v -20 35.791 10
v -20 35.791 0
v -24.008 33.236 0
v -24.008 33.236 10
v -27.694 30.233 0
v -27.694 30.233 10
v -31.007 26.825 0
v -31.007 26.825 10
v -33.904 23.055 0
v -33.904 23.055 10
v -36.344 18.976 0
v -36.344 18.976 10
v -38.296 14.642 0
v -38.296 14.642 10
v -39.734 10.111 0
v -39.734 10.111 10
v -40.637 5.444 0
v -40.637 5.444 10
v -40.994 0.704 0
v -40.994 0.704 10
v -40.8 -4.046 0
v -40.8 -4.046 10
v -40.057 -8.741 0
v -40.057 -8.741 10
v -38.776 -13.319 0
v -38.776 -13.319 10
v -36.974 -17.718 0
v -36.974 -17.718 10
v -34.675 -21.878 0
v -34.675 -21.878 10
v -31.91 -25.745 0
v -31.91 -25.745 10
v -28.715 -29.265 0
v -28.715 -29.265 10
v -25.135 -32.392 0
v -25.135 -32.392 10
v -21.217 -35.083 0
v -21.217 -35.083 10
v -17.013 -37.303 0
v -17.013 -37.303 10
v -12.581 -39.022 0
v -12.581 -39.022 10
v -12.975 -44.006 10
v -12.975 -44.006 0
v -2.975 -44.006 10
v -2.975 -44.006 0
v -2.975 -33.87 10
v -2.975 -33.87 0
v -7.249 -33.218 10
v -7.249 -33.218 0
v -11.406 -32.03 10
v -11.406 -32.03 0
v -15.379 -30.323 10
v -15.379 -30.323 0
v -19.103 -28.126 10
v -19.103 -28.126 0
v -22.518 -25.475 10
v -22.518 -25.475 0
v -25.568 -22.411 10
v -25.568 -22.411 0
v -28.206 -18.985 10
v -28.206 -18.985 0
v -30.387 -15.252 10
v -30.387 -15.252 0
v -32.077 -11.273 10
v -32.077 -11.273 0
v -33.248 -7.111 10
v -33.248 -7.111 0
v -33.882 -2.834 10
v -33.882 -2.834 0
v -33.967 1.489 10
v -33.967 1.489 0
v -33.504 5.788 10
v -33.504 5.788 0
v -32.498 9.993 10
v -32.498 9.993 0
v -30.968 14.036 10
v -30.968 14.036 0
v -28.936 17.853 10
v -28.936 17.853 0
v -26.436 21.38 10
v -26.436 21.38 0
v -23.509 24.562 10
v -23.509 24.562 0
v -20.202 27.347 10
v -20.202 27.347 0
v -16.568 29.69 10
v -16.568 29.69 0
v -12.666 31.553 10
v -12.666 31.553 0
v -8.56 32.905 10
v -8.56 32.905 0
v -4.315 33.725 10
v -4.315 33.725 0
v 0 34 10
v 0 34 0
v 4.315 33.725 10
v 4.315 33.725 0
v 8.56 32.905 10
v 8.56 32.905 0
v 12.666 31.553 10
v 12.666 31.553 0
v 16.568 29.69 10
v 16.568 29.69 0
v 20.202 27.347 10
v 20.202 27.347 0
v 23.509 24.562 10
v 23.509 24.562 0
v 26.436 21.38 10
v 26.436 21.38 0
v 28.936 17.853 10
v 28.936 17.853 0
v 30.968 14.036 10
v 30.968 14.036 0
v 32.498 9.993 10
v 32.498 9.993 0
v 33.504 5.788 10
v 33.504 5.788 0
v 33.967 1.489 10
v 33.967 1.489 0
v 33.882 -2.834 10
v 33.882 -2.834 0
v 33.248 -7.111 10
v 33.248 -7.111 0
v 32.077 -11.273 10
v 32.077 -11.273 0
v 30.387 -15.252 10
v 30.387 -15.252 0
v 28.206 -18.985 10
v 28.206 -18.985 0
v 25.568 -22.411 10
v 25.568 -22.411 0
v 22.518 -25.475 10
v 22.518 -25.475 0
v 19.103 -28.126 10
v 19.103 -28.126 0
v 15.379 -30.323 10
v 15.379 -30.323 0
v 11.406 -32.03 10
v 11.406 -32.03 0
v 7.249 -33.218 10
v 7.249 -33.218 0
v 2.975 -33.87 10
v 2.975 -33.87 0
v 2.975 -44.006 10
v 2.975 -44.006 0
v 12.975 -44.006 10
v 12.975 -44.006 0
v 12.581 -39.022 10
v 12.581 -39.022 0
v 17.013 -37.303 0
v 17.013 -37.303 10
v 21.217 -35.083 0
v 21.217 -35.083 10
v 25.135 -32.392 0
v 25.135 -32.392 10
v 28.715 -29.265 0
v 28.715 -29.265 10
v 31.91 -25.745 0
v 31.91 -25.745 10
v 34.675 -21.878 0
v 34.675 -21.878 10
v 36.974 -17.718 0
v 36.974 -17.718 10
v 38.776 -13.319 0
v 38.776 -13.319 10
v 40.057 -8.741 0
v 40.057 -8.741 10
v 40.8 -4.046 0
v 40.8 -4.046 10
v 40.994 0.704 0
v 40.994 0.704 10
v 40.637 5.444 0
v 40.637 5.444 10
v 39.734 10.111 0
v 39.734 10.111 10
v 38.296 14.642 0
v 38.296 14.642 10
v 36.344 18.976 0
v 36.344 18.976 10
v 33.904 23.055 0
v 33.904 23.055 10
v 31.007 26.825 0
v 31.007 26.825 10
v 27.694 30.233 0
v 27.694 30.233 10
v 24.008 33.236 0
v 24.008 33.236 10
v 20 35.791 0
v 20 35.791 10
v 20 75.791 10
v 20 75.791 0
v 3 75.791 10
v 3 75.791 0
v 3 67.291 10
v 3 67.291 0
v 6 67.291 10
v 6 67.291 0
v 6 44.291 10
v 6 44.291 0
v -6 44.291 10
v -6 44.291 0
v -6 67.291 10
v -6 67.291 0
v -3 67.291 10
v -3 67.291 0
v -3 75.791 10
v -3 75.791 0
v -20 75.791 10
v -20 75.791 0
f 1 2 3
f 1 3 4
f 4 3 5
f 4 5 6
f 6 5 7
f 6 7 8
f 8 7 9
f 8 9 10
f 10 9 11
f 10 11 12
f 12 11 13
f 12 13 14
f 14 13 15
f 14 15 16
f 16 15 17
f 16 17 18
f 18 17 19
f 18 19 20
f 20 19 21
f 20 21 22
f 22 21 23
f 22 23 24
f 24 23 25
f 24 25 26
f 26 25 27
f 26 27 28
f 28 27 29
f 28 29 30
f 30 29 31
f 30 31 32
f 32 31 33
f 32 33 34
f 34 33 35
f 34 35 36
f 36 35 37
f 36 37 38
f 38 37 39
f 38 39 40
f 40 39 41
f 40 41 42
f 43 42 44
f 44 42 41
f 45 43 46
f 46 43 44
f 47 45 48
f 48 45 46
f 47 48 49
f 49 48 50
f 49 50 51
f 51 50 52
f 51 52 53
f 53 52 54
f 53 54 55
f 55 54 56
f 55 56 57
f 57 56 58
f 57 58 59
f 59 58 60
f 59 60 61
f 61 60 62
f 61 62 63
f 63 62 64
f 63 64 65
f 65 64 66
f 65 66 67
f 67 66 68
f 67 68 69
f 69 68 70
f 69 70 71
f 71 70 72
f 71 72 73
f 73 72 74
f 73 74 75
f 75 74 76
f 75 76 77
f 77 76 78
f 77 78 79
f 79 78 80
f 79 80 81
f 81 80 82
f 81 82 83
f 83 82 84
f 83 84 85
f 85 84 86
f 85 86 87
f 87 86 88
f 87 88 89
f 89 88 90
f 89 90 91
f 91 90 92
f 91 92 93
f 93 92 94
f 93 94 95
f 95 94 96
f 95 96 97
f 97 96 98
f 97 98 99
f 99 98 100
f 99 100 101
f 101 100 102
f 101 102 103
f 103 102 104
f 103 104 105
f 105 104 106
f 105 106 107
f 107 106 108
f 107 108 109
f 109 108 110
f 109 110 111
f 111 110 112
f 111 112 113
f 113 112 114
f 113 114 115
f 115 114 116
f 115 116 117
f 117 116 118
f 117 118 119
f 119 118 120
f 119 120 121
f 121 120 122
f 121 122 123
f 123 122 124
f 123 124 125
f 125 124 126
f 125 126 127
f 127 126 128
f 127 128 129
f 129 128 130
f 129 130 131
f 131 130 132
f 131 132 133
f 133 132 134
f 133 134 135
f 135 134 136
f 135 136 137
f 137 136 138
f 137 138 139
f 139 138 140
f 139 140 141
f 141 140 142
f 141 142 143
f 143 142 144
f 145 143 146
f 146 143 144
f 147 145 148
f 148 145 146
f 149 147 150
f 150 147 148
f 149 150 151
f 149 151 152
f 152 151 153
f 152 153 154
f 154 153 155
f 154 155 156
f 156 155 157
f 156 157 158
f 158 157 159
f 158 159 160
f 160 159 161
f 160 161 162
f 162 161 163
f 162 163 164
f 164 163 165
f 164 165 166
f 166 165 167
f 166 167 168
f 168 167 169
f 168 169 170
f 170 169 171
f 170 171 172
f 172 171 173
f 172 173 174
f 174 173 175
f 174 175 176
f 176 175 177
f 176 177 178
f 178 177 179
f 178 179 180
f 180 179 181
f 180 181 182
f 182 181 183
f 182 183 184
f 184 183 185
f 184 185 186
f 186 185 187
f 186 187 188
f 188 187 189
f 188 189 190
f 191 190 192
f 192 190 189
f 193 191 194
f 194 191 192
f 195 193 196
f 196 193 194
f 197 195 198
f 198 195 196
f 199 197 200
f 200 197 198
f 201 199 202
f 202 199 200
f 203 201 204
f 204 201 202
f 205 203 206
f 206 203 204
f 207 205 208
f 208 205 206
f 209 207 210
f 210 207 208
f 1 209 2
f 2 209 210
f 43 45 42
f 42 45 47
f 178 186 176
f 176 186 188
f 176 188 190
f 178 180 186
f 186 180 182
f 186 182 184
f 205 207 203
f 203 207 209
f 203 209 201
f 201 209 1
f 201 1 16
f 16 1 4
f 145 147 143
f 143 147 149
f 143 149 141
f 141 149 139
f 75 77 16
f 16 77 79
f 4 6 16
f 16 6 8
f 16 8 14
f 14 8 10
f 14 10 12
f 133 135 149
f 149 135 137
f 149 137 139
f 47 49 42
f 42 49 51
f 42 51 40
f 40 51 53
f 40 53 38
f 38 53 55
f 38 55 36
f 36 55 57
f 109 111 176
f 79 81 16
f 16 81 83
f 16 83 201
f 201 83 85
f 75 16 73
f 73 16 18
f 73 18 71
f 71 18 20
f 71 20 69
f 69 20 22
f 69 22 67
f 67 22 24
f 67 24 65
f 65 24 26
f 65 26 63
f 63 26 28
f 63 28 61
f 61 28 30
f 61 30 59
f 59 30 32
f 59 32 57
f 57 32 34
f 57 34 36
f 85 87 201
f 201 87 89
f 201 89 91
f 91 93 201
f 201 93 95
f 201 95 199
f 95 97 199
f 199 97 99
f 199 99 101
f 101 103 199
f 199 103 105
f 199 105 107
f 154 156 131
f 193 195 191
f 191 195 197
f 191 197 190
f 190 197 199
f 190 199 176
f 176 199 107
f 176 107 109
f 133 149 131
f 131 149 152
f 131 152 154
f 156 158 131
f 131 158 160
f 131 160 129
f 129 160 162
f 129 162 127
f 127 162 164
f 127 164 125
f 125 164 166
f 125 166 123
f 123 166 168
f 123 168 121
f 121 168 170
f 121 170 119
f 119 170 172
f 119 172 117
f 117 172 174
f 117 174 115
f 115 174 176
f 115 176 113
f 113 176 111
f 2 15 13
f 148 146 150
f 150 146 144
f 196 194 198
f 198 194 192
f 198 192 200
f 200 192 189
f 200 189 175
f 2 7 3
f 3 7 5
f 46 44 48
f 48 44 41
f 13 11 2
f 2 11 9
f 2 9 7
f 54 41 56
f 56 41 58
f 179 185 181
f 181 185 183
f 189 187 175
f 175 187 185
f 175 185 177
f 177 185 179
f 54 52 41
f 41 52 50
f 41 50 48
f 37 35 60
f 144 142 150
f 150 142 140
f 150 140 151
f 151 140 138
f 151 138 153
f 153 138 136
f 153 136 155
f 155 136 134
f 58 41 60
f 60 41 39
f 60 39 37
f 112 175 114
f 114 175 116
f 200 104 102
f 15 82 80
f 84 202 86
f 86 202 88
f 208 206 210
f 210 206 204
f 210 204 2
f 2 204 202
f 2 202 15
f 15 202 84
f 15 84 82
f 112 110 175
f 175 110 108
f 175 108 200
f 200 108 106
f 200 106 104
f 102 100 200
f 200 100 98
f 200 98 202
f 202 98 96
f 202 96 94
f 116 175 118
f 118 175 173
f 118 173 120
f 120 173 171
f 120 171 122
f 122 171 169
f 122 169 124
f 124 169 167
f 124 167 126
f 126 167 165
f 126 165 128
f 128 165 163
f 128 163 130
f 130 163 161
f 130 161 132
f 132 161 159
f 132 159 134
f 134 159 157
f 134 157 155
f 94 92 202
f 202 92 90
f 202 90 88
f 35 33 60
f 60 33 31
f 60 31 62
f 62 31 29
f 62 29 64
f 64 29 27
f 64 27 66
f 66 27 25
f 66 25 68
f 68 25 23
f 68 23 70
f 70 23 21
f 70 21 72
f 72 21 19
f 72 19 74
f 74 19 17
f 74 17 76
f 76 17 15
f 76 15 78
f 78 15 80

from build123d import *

# Parameters (mm, degrees)
SALIENTE_EXTRUIR1_DEPTH = 10


with BuildPart() as part:
    # Croquis1 → Saliente-Extruir1 (new body)
    with BuildSketch(Plane.XY):
        with BuildLine():
            Line((-20, 35.791060336), (-20, 75.791060336))
            Line((-20, 75.791060336), (-3, 75.791060336))
            Line((-3, 75.791060336), (-3, 67.291060336))
            Line((-3, 67.291060336), (-6, 67.291060336))
            Line((-6, 67.291060336), (-6, 44.291060336))
            Line((-6, 44.291060336), (-3, 44.291060336))
            Line((-3, 44.291060336), (3, 44.291060336))
            Line((3, 44.291060336), (6, 44.291060336))
            Line((6, 44.291060336), (6, 67.291060336))
            Line((6, 67.291060336), (3, 67.291060336))
            Line((3, 67.291060336), (3, 75.791060336))
            Line((3, 75.791060336), (20, 75.791060336))
            Line((20, 75.791060336), (20, 35.791060336))
            ThreePointArc((20, 35.791060336), (40.799890092, -4.04585819), (12.581284853, -39.02193321))
            Line((12.581284853, -39.02193321), (12.975031737, -44.006405438))
            Line((12.975031737, -44.006405438), (2.975031737, -44.006405438))
            Line((2.975031737, -44.006405438), (2.975031737, -40.891920793))
            Line((2.975031737, -40.891920793), (2.975031737, -33.869590877))
            ThreePointArc((2.975031737, -33.869590877), (0, 34), (-2.975031737, -33.869590877))
            Line((-2.975031737, -33.869590877), (-2.975031737, -40.891920793))
            Line((-2.975031737, -40.891920793), (-2.975031737, -44.006405438))
            Line((-2.975031737, -44.006405438), (-12.975031737, -44.006405438))
            Line((-12.975031737, -44.006405438), (-12.581284853, -39.02193321))
            ThreePointArc((-12.581284853, -39.02193321), (-40.799890092, -4.04585819), (-20, 35.791060336))
        make_face()
    extrude(amount=SALIENTE_EXTRUIR1_DEPTH)


solid = part.part
